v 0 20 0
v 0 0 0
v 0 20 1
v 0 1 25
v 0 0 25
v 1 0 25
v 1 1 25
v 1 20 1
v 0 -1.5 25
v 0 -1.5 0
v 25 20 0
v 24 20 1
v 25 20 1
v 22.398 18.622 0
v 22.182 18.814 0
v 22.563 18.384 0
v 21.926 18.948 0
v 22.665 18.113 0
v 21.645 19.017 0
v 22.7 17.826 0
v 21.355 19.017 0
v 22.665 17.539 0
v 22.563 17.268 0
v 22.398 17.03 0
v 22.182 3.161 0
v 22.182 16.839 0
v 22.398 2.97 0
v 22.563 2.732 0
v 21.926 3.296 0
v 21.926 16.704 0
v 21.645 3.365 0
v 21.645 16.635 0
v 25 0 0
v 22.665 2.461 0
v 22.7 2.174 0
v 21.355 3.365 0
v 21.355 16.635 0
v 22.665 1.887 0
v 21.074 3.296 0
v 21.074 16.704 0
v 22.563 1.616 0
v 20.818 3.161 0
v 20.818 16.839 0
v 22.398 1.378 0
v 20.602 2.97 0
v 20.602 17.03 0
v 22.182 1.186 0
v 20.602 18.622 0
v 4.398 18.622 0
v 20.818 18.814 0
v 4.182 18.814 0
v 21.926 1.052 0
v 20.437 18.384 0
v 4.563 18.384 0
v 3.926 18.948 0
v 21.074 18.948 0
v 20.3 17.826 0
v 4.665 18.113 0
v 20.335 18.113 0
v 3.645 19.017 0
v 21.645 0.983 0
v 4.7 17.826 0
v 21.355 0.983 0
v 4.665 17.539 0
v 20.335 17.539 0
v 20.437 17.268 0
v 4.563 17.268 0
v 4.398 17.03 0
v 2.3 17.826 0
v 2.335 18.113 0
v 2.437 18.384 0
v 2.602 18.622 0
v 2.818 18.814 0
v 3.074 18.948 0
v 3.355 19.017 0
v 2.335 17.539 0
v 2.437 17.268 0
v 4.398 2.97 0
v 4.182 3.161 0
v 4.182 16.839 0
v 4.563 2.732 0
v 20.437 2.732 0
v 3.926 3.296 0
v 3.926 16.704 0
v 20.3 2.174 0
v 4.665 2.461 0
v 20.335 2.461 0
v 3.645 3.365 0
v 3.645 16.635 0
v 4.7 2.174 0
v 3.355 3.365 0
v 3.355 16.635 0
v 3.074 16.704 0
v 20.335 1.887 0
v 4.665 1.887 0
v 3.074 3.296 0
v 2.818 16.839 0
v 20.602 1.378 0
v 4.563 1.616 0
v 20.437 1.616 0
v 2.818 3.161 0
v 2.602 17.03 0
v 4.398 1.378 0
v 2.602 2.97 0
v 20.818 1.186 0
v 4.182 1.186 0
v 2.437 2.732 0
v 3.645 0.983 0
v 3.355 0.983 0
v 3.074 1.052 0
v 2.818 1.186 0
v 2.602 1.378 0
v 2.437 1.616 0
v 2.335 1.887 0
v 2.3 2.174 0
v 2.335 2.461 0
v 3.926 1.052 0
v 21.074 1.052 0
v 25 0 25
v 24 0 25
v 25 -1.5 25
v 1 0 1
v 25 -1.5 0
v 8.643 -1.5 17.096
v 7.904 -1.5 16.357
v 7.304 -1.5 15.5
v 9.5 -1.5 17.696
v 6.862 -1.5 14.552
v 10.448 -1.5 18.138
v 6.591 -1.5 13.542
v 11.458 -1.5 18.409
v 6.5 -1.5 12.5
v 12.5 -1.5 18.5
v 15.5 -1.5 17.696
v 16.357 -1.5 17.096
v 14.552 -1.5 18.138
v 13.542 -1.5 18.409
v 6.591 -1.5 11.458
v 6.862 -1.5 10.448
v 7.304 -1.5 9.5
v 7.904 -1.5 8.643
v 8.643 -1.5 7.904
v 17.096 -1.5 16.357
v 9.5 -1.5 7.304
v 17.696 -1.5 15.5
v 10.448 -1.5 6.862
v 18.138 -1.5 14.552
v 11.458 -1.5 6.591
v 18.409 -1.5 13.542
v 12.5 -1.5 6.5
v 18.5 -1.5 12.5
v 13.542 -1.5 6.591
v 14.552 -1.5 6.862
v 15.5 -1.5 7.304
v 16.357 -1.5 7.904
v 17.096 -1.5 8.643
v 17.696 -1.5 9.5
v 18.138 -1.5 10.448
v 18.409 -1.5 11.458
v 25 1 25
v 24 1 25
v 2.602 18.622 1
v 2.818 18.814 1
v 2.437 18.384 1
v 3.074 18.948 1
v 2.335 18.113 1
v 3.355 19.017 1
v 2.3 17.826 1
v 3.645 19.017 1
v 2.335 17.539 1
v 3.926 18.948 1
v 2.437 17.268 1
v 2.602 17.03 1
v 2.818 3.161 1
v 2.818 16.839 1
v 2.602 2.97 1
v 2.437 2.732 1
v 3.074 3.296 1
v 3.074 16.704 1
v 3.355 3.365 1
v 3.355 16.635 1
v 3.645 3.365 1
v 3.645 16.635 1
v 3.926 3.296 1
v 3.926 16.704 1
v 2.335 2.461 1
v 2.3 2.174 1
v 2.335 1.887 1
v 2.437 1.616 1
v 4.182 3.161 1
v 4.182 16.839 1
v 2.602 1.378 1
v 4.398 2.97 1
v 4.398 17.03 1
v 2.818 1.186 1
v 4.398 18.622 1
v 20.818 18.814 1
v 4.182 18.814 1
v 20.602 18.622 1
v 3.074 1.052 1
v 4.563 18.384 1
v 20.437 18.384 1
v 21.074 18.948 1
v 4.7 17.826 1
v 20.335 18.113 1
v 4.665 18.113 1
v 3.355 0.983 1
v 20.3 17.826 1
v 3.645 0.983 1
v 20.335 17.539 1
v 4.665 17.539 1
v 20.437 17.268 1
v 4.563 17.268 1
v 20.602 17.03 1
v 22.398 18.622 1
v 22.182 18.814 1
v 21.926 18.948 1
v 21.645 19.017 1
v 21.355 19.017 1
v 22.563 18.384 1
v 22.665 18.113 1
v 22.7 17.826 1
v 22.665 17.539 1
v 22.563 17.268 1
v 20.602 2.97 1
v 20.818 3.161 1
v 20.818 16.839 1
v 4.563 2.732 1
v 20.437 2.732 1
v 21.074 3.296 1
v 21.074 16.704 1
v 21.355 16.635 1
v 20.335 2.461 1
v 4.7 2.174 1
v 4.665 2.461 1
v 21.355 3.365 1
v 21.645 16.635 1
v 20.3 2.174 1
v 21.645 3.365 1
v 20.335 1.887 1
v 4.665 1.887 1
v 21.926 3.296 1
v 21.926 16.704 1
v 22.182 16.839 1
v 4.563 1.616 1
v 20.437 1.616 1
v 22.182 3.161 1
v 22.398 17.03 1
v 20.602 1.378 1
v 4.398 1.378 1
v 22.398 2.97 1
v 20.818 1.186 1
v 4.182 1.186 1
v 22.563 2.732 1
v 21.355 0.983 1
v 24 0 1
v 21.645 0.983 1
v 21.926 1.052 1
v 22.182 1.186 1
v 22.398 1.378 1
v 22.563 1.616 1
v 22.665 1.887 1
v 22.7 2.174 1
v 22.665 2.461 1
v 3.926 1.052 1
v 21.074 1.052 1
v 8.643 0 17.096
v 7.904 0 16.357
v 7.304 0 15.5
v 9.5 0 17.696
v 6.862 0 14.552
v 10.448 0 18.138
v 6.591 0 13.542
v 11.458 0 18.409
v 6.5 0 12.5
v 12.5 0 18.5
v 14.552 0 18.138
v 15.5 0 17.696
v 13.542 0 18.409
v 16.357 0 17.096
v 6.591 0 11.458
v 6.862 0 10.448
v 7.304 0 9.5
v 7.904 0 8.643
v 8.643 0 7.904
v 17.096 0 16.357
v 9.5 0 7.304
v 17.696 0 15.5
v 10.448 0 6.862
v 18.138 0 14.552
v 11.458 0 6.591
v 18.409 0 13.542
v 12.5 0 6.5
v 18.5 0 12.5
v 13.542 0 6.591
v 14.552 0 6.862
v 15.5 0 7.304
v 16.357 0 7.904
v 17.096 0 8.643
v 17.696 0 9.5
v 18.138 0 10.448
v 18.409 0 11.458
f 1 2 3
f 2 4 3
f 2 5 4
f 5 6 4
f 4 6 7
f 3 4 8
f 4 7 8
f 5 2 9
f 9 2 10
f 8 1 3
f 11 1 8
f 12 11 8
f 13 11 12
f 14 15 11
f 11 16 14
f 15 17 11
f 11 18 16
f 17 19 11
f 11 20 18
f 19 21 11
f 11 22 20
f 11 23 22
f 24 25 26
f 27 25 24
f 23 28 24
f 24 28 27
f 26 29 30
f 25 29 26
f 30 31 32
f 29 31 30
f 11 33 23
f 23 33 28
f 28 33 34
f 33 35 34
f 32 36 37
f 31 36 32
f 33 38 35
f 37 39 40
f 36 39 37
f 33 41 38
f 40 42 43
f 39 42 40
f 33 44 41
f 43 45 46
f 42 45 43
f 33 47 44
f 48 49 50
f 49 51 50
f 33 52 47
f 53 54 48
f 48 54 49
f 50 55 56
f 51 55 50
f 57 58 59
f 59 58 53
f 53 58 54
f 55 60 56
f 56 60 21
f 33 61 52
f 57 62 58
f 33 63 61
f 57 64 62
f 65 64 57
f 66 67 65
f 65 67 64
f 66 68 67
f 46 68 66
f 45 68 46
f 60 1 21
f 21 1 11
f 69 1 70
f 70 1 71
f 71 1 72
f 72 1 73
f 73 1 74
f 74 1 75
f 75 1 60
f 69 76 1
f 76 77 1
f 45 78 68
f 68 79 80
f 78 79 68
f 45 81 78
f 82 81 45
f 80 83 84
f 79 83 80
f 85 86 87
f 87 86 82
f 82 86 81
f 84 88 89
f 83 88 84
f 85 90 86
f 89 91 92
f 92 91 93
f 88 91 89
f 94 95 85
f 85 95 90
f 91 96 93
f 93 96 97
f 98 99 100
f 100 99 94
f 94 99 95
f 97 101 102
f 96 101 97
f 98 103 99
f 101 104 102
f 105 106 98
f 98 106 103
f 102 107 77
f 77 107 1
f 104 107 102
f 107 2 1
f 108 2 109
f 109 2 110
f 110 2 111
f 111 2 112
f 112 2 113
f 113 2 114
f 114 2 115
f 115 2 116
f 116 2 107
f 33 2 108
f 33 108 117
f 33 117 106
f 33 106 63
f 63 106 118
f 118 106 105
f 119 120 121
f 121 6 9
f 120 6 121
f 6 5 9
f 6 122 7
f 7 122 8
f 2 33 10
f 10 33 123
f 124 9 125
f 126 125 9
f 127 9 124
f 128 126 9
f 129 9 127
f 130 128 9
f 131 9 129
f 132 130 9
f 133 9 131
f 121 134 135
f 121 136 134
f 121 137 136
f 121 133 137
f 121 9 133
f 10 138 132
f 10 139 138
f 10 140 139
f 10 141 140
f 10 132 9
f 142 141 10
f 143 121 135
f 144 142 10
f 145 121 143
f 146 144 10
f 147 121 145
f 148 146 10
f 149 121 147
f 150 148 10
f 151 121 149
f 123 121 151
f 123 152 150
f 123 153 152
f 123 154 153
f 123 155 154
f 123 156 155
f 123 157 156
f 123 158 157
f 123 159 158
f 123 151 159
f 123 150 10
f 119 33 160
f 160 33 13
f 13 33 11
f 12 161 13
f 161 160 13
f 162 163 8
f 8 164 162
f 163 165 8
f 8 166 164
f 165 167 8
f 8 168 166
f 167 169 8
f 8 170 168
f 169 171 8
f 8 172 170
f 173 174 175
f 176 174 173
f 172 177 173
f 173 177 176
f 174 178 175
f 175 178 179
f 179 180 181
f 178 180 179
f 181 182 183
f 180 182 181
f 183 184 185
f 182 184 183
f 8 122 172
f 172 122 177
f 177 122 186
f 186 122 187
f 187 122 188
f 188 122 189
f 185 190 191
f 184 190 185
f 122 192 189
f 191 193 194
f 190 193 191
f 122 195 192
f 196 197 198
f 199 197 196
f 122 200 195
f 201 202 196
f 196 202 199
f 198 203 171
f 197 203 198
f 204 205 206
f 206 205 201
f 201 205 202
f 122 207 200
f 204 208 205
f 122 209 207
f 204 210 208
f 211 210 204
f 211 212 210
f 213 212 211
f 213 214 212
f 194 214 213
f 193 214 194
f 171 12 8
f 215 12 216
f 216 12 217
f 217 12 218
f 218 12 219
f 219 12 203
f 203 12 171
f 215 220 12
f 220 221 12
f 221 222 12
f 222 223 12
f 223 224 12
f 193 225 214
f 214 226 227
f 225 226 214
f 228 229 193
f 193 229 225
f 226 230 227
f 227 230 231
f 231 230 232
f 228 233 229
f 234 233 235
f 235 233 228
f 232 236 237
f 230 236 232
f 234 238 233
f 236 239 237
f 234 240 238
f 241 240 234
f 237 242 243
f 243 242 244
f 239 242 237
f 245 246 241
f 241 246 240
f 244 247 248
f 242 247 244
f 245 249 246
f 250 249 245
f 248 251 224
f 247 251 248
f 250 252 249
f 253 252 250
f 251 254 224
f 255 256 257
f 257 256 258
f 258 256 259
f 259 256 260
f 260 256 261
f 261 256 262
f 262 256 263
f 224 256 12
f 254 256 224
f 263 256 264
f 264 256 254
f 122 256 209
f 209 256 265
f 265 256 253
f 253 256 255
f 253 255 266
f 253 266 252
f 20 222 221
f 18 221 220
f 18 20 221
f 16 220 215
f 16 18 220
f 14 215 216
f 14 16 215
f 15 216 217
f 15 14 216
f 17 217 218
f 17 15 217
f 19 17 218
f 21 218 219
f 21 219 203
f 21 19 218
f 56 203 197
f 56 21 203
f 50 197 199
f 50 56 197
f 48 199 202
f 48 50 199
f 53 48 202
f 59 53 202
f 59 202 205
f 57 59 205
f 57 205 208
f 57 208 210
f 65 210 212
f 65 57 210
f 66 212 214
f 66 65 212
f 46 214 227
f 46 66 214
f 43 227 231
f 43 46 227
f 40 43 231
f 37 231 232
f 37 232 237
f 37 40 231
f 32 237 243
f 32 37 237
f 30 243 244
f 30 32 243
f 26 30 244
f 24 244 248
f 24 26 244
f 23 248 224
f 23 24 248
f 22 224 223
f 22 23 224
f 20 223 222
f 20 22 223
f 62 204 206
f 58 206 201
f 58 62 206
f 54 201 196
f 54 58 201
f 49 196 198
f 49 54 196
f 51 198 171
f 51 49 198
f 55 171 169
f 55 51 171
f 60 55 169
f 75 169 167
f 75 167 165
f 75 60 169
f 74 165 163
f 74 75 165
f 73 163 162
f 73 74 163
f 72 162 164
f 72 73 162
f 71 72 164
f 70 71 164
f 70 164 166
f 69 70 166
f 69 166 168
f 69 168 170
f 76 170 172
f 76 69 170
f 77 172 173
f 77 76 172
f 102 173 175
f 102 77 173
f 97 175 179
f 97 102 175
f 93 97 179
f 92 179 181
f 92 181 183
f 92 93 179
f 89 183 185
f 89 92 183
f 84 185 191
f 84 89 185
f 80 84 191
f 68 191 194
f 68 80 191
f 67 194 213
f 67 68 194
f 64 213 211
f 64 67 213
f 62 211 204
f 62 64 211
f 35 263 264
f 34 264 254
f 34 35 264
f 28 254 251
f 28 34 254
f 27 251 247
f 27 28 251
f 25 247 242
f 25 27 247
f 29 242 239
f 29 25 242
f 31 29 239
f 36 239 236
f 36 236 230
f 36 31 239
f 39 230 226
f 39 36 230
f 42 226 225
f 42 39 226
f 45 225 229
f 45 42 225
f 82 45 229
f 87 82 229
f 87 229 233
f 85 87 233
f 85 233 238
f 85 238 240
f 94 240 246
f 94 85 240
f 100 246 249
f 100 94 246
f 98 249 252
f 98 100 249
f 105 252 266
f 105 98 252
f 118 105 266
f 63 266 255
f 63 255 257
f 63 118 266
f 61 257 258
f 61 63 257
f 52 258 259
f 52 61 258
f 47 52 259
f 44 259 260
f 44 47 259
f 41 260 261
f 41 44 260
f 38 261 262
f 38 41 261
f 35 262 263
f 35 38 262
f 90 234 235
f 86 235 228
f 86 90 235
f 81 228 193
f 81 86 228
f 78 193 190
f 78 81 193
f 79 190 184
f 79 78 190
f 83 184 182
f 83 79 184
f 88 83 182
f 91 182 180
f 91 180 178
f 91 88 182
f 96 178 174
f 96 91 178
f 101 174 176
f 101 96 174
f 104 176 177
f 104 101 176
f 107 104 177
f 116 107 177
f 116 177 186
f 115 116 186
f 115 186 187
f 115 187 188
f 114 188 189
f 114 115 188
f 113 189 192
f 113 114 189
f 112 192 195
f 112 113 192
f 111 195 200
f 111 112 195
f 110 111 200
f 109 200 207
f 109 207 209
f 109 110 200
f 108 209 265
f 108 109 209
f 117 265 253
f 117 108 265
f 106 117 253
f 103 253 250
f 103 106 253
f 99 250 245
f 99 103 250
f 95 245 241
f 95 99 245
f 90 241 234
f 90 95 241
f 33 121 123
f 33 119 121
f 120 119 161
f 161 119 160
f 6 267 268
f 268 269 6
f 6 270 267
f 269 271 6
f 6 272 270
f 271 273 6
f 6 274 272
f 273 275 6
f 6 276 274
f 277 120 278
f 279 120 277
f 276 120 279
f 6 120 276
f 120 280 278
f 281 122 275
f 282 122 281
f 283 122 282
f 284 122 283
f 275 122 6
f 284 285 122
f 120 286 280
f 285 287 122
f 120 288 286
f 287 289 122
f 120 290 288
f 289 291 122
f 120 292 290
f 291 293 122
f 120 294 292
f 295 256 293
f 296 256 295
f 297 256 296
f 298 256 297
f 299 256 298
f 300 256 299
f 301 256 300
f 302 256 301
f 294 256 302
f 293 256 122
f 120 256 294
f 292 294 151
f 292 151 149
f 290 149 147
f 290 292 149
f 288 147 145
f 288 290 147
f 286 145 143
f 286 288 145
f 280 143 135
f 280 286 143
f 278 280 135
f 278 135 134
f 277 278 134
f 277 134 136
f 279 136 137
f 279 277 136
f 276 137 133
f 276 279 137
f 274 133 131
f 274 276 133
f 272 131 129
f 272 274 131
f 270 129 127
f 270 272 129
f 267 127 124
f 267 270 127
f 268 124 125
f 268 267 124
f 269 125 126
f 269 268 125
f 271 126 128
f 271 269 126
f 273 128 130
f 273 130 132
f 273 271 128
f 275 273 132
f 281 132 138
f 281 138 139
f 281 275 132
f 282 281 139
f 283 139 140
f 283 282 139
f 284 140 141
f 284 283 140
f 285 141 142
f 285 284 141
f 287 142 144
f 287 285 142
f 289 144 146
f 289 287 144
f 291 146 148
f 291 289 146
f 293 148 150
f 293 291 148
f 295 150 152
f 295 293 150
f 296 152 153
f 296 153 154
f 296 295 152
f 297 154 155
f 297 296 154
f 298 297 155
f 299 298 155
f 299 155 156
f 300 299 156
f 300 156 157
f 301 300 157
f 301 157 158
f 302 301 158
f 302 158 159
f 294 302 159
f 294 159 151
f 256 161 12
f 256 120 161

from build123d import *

# Parameters (mm, degrees)
SKETCH_W      = 25
SKETCH_H      = 25
SKETCH_R      = 6
PAD_DEPTH     = 1.5
PAD001_DEPTH  = 20
SKETCH002_R   = 1.2
HOLE_DEPTH    = 25
CHAMFER_SIZE2 = 19
CHAMFER_SIZE  = 24


with BuildPart() as part:
    # Sketch → Pad (new body)
    with BuildSketch(Plane.XZ):
        with Locations((12.5, 12.5)):
            Rectangle(SKETCH_W, SKETCH_H)
        with Locations((12.5, 12.5)):
            Circle(SKETCH_R, mode=Mode.SUBTRACT)
    extrude(amount=PAD_DEPTH)

    # Sketch001 (on Face6 of Pad) → Pad001 (join)
    with BuildSketch(Plane(origin=(0, 0, 0), x_dir=(1, 0, 0), z_dir=(0, 1, 0))):
        Polygon((25, -25), (25, 0), (0, 0), (0, -25), (1, -25), (1, -1), (24, -1), (24, -25), align=None)
    extrude(amount=PAD001_DEPTH)

    # Sketch002 (on Face15 of Pad001) → Hole (cut)
    with BuildSketch(Plane(origin=(0, 0, 1), x_dir=(-1, 0, 0), z_dir=(0, 0, 1))):
        with Locations((-3.5, -17.826087)):
            Circle(SKETCH002_R)
        with Locations((-21.5, -17.826087)):
            Circle(SKETCH002_R)
        with Locations((-21.5, -2.173913)):
            Circle(SKETCH002_R)
        with Locations((-3.5, -2.173913)):
            Circle(SKETCH002_R)
    extrude(amount=-HOLE_DEPTH, mode=Mode.SUBTRACT)

    # Chamfer
    chamfer_edges = [part.edges().sort_by_distance(p)[0] for p in [
        (0.5, 20, 25),
        (24.5, 20, 25),
    ]]
    chamfer_side = part.faces().sort_by_distance((24.646447, 20, 12.5))[0]
    chamfer(chamfer_edges, length=CHAMFER_SIZE, length2=CHAMFER_SIZE2, reference=chamfer_side)


solid = part.part
